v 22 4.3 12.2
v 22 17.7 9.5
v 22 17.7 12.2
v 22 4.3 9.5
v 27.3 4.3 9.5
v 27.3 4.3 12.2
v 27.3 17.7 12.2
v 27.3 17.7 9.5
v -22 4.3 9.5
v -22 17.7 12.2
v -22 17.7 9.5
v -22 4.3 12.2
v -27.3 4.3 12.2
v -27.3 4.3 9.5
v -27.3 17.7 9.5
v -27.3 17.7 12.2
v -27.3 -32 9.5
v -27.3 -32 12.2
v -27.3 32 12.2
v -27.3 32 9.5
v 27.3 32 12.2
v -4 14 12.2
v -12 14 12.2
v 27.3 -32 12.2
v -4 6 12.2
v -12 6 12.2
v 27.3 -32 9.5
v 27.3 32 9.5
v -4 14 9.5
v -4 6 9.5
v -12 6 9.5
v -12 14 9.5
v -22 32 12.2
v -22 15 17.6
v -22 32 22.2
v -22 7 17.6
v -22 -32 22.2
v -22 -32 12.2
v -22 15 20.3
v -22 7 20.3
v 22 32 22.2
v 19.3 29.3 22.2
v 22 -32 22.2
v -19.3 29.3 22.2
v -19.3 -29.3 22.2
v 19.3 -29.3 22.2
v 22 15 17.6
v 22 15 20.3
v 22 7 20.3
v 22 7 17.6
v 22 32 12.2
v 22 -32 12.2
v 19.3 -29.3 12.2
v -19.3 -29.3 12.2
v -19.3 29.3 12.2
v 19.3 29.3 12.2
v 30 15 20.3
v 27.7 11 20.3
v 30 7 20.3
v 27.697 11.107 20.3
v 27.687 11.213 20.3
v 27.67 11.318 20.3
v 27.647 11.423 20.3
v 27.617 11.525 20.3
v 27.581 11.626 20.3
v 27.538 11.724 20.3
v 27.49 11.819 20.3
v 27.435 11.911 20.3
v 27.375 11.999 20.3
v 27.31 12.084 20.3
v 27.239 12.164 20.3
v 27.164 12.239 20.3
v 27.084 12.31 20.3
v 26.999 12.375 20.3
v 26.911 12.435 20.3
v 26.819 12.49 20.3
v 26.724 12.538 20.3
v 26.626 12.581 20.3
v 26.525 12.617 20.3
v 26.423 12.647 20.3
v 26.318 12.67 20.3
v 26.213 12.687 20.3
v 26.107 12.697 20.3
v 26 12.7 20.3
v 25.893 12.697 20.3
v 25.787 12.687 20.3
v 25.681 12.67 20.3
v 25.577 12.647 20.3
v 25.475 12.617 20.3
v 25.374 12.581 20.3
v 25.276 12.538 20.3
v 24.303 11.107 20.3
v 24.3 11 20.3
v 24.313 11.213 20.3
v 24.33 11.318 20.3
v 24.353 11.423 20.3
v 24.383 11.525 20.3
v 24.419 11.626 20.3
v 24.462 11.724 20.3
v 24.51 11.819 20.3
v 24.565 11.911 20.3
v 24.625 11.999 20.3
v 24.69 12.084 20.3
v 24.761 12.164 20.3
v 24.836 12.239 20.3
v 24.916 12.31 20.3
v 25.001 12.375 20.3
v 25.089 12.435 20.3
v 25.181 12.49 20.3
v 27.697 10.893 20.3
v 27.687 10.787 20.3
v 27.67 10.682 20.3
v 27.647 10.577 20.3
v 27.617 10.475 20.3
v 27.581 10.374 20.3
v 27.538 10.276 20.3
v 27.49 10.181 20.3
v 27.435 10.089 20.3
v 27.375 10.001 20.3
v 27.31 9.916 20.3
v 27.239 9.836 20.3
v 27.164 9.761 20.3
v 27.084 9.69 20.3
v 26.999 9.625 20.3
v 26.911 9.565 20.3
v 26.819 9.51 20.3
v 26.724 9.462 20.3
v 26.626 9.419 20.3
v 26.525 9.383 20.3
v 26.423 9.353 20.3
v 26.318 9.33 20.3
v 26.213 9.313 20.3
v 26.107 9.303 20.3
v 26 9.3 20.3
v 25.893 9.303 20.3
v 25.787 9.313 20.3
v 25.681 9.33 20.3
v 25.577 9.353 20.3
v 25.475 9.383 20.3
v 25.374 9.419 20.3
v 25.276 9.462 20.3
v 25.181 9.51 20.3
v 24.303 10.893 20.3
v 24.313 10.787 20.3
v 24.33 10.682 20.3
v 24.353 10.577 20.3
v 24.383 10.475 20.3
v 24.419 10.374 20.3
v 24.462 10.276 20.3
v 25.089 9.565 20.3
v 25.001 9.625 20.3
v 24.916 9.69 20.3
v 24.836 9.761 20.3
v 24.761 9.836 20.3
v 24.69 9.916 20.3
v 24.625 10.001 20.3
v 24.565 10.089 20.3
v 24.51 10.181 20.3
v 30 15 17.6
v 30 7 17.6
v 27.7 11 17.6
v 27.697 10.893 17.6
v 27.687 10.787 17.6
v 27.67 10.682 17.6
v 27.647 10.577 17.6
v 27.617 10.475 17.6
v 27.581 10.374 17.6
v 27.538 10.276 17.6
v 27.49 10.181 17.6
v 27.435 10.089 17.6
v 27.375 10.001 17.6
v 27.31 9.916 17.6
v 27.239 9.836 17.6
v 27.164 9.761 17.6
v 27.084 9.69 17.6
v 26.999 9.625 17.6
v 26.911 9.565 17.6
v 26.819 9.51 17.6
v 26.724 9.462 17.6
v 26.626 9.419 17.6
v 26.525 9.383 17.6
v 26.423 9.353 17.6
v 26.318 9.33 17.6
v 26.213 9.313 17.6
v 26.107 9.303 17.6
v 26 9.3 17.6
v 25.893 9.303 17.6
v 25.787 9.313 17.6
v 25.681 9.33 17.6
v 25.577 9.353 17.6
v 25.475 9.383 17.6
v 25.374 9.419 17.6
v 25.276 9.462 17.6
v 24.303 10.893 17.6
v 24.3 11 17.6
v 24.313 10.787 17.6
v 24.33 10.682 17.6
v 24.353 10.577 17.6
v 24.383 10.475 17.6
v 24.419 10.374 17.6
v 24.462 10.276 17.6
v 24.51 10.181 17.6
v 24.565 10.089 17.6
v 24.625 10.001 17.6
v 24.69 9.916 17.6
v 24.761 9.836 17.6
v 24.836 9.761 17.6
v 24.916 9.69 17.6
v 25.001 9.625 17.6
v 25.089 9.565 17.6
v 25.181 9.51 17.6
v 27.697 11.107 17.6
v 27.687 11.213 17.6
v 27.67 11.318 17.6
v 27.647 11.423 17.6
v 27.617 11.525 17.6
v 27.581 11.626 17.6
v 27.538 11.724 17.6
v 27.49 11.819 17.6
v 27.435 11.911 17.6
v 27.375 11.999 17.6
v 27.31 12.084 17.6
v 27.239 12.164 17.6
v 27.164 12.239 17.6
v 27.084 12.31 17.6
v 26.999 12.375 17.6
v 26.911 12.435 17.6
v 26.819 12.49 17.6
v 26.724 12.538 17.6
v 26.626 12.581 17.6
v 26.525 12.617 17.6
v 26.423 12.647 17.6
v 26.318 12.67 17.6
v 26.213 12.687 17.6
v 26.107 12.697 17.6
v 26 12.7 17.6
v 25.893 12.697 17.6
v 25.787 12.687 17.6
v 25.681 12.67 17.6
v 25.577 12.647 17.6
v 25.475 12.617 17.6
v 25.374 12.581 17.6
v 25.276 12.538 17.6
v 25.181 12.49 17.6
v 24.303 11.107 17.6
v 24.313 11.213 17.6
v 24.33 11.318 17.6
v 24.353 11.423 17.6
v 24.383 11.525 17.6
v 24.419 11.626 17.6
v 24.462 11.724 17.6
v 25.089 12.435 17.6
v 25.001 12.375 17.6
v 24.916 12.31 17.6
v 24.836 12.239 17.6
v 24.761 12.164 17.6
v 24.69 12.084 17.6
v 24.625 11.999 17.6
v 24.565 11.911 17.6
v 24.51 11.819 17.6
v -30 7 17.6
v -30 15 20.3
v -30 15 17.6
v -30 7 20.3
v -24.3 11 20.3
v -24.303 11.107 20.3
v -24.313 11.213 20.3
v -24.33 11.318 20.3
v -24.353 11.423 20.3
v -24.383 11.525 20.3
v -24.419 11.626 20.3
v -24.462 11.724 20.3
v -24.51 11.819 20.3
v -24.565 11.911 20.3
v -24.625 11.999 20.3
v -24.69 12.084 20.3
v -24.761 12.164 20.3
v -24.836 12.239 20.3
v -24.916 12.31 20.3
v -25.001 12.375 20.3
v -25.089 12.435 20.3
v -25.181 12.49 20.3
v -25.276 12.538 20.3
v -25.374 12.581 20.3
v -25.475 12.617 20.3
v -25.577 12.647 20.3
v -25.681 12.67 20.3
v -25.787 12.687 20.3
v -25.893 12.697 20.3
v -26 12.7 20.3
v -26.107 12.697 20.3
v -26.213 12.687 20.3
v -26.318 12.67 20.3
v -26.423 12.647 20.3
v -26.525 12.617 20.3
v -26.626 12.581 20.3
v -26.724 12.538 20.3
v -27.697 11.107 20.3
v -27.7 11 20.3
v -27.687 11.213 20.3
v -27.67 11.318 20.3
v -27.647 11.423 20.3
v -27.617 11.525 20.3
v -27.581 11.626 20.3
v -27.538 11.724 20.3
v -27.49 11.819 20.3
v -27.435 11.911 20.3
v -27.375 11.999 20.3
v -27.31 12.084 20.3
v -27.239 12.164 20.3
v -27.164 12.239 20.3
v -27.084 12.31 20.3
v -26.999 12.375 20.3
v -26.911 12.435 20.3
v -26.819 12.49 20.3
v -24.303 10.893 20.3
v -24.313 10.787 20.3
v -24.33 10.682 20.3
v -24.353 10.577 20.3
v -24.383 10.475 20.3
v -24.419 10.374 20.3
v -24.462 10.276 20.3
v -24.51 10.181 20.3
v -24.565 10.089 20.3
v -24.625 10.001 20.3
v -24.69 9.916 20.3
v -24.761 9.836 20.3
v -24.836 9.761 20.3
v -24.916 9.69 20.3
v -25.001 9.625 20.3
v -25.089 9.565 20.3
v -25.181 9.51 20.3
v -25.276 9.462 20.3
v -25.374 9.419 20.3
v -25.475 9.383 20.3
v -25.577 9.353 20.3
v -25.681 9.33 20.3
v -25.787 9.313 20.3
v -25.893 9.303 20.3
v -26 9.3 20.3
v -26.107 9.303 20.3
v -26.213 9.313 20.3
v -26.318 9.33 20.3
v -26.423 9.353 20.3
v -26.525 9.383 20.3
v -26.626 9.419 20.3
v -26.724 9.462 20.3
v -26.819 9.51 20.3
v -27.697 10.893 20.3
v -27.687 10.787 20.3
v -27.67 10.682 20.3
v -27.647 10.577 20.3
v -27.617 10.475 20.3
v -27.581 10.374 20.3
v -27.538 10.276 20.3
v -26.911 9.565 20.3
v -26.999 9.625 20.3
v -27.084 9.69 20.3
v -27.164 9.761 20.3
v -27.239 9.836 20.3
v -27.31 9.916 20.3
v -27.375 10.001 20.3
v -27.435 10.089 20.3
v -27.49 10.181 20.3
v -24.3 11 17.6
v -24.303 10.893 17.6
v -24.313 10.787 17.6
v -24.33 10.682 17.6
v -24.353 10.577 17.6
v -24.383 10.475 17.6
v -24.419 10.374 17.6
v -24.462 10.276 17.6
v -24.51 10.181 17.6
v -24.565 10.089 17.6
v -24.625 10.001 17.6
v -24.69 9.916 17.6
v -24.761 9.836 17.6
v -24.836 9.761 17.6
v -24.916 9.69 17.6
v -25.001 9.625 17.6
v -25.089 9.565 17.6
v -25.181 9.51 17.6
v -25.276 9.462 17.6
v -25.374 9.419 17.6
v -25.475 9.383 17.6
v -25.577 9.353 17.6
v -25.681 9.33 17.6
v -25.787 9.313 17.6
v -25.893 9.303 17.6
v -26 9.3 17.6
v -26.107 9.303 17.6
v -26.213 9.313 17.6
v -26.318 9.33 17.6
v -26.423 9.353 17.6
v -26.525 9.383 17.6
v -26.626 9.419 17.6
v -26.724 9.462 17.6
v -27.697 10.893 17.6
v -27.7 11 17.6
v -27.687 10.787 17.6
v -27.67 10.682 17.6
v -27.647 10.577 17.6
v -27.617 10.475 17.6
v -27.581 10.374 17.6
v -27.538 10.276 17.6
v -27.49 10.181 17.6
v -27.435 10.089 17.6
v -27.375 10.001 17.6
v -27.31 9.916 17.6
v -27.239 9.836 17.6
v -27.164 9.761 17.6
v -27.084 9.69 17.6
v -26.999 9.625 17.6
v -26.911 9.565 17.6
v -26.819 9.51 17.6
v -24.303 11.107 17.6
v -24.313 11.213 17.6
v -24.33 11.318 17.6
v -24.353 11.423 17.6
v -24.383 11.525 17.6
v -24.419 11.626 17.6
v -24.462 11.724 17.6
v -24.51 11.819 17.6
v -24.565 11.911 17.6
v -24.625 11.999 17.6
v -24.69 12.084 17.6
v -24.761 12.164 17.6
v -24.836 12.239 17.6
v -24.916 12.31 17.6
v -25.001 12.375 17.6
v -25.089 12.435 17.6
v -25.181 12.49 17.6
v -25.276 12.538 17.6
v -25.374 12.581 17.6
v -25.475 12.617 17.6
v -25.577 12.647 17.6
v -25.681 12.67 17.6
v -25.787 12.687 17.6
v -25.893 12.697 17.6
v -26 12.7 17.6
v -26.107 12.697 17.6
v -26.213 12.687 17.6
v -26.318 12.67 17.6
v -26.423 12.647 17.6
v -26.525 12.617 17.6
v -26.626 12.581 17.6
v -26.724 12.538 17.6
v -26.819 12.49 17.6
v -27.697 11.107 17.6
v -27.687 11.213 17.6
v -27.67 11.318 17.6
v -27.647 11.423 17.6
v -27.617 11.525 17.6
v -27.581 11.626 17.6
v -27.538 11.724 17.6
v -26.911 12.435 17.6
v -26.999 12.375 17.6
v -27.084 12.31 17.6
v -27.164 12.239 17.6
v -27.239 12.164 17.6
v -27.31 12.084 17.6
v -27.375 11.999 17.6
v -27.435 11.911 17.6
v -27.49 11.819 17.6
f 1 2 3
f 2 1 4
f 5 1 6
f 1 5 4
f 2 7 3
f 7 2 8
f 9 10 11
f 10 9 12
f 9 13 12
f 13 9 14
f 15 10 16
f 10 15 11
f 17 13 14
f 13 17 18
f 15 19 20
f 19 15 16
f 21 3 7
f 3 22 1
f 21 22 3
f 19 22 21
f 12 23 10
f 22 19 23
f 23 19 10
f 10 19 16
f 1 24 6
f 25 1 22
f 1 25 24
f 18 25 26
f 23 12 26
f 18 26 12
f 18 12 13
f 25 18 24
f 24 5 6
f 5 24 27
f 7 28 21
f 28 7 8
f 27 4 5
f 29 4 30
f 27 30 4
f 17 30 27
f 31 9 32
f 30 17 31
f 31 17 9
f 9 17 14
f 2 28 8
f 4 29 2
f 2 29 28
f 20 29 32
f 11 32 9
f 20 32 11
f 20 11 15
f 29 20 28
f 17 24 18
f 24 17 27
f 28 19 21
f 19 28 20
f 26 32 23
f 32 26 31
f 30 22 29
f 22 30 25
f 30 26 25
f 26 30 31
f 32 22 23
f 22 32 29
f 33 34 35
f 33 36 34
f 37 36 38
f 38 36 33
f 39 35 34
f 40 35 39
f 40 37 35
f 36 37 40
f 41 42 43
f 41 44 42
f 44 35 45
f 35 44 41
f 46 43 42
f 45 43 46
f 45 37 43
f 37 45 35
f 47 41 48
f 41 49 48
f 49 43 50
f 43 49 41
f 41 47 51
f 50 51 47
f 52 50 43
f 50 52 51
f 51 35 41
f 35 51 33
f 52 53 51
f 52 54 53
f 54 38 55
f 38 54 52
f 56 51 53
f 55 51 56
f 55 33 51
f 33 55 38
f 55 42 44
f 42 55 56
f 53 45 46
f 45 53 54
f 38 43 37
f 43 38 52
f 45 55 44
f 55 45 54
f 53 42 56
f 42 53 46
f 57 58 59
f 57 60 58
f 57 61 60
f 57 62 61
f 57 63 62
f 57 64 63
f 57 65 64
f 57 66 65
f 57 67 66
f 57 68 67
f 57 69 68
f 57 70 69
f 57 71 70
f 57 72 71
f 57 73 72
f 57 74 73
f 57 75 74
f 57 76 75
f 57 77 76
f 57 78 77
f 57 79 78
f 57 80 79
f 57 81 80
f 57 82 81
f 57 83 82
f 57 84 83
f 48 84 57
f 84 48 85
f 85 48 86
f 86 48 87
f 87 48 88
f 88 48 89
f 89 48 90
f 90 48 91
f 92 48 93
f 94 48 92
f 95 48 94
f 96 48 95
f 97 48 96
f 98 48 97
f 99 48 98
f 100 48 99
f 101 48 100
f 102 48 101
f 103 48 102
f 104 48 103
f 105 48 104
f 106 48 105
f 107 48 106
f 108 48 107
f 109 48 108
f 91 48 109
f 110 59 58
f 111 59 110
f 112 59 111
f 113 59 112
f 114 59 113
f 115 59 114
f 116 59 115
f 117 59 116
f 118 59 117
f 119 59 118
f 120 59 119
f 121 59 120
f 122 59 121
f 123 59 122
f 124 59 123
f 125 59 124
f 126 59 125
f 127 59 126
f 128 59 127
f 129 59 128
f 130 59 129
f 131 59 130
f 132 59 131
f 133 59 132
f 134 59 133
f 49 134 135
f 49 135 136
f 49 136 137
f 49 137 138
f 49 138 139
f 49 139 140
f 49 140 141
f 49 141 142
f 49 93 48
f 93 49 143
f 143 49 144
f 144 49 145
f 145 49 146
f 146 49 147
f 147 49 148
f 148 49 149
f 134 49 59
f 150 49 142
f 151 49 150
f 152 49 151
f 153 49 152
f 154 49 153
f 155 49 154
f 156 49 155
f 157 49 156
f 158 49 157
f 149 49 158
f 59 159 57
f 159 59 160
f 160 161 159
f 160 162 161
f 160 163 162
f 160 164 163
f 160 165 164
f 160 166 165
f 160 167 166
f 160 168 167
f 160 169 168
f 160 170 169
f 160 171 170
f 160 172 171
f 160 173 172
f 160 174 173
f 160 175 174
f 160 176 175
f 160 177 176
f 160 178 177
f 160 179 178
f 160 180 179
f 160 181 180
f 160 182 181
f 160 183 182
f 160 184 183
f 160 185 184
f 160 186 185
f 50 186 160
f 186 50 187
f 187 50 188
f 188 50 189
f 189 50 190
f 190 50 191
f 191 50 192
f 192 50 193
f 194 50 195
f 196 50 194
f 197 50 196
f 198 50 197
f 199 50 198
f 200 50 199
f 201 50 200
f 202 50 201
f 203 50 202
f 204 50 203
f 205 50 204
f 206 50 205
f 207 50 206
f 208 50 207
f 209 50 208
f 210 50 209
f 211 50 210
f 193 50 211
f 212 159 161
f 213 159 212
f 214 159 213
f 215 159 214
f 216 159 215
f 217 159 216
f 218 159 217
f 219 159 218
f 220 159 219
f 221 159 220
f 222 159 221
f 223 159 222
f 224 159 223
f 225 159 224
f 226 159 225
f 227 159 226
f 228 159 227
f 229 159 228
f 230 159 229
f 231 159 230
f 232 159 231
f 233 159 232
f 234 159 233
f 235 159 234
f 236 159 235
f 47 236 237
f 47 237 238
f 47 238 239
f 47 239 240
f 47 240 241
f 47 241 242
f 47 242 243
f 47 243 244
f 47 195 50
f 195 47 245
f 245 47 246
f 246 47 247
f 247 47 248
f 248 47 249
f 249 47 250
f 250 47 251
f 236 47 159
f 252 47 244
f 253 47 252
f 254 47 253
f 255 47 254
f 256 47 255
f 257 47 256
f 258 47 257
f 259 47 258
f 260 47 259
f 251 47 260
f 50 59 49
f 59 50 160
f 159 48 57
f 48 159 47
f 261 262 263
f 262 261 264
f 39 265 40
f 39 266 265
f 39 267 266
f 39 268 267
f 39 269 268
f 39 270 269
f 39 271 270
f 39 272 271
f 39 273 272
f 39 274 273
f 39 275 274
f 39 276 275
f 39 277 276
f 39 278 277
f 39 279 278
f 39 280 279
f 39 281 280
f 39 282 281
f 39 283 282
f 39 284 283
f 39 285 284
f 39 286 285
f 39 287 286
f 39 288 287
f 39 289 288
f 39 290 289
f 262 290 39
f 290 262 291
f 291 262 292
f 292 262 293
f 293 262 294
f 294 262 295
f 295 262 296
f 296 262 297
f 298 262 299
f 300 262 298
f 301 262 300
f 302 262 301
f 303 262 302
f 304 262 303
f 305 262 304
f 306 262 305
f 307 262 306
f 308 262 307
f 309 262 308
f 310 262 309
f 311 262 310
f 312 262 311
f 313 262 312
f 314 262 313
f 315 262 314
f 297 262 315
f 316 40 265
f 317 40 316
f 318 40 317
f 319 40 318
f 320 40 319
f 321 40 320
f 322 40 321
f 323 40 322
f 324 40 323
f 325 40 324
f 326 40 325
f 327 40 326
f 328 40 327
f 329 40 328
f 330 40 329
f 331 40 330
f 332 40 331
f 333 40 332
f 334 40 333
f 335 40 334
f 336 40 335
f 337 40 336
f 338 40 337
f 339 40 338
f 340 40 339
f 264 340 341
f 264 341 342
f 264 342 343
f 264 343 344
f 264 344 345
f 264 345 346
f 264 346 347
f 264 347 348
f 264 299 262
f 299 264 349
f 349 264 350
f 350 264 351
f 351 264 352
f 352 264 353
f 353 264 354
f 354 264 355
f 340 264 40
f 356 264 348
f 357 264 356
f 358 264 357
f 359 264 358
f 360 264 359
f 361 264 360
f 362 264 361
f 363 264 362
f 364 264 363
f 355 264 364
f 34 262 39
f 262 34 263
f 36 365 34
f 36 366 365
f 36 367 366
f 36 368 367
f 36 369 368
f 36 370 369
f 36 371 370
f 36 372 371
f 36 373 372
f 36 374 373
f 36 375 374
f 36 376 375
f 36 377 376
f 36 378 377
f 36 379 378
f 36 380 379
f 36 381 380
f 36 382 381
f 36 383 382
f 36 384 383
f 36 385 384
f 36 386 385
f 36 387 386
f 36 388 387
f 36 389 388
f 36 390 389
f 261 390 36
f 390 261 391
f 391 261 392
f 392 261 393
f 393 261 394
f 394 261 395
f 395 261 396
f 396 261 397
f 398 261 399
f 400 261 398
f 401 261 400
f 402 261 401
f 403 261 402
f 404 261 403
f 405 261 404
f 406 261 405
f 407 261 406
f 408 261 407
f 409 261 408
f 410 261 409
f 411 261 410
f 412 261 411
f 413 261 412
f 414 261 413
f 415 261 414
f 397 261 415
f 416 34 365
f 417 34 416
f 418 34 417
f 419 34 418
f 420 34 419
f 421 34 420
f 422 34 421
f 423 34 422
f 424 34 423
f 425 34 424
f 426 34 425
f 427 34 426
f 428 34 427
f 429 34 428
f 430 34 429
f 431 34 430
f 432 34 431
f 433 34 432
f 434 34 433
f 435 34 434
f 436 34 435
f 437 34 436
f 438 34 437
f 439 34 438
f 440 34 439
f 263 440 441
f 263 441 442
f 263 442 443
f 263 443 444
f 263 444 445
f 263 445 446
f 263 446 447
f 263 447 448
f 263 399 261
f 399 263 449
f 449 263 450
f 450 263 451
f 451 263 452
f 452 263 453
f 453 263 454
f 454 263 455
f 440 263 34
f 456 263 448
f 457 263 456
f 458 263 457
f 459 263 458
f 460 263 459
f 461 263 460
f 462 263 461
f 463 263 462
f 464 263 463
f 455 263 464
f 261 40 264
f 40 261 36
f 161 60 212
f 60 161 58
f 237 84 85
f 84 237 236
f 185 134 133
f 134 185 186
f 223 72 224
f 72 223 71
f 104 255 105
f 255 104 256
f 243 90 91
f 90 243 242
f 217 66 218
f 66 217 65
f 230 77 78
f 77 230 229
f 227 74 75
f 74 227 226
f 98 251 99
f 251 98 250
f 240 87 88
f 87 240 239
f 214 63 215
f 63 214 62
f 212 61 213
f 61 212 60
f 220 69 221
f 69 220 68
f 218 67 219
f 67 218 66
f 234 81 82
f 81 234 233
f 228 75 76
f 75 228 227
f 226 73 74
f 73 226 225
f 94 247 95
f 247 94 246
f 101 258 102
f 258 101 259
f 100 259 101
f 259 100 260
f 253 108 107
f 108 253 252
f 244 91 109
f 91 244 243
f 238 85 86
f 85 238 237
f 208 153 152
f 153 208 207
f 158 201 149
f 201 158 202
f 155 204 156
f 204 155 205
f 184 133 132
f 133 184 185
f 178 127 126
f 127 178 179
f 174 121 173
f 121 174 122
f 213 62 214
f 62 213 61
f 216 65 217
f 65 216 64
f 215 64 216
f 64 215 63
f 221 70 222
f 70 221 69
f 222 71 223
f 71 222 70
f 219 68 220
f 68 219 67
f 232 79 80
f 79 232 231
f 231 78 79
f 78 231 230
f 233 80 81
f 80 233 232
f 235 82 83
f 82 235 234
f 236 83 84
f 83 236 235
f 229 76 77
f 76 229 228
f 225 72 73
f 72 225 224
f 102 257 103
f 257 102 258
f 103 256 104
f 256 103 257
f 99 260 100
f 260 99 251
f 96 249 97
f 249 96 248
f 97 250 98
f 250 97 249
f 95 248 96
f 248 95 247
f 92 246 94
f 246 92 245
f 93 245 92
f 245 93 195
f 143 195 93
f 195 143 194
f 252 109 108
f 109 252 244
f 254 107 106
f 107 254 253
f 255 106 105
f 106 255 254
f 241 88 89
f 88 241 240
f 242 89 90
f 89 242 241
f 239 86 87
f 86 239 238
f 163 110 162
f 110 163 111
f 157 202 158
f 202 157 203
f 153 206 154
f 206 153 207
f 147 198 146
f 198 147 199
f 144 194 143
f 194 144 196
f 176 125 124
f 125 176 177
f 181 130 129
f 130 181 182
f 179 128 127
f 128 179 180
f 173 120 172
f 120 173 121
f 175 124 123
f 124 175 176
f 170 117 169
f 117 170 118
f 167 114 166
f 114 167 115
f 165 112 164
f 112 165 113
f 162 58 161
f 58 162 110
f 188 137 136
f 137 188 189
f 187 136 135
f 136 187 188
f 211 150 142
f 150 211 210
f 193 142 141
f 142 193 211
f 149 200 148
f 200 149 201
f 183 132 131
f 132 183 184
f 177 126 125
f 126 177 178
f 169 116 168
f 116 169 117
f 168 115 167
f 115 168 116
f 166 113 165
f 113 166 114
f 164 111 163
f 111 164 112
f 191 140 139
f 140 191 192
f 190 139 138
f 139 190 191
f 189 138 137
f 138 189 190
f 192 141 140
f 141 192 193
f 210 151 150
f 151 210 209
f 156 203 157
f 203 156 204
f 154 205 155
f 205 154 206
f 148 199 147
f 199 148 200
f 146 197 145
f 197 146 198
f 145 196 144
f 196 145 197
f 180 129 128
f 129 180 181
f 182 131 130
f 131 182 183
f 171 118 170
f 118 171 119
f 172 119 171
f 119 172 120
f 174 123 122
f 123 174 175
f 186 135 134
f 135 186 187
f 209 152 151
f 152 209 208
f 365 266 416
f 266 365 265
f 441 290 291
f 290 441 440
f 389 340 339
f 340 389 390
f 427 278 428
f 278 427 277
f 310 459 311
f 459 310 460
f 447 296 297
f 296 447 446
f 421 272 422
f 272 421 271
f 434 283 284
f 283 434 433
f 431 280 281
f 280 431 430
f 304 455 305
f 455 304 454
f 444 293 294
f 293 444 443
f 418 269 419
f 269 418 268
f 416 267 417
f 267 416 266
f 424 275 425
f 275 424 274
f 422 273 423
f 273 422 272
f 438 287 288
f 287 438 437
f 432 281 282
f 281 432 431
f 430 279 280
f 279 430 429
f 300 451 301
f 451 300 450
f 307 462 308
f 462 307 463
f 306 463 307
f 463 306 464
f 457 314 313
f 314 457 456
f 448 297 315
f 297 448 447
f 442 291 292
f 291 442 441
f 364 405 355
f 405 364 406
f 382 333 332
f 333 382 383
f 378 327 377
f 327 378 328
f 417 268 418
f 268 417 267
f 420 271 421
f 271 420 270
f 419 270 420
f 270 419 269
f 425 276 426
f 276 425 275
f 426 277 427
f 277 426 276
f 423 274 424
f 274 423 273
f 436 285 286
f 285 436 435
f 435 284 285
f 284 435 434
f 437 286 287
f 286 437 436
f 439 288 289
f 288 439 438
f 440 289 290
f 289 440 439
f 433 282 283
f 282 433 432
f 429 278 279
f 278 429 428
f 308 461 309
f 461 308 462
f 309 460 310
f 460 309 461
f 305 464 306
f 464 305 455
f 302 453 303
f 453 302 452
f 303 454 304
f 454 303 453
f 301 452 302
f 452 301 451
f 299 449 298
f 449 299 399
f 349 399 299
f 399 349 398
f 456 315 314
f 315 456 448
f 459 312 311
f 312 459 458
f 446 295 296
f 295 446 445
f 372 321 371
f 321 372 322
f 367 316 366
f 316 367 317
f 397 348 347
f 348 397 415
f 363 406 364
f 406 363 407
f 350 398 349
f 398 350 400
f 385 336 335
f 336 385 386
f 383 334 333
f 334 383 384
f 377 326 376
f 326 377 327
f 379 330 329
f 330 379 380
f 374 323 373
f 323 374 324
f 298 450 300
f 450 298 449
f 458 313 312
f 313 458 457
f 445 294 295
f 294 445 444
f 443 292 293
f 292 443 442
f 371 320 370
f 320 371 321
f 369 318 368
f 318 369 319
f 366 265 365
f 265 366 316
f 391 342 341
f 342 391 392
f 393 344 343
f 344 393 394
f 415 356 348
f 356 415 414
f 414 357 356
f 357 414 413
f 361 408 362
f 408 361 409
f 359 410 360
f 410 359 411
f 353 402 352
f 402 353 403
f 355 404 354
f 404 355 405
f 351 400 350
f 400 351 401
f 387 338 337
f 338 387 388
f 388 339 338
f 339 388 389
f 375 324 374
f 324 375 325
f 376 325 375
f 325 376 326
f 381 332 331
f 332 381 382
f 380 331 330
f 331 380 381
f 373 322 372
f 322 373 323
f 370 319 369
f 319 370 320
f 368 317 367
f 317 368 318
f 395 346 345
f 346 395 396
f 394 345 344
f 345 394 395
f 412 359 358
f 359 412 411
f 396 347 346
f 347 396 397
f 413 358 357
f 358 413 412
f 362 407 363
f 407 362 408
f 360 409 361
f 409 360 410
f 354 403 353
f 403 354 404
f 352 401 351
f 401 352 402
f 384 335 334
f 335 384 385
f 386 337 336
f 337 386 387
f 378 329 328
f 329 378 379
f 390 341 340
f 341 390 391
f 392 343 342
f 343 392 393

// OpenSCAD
// file: ../chassis.scad
/*
Title:          chassis.scad
Description:    R2B2 nano Chassis
Authors:        Pau Roura (@proura)
Date:           20180621
Version:        0.3
Notes:

    Default values for module chassis

    module chassis(
        d_screw_h=3,        //screw hole diameter
        w_walls=2.7,        //wall with
        w_support=8,        //support with
        h_support=8,        //support depth
        w_chassis=56,       //chassis with
        d_chassis=71,       //chassis depth
        h_battery=9.5
    )
*/
include <config.scad>;

module supportR(w_walls=2.7, w_support=8, h_support=8, w_chassis=56, h_battery=9.5){
    union(){
        translate([w_chassis/2-w_support,15-h_support-1,0])        cube([w_support,h_support+2,h_battery+w_walls]);
        translate([w_chassis/2-w_support,15-h_support-w_walls,0])  cube([w_support-2,w_walls,h_battery+w_walls*3]);
        translate([w_chassis/2-w_support,15,0])                    cube([w_support-2,w_walls,h_battery+w_walls*3]);
    }
}

module supportL(w_walls=2.7, w_support=8, h_support=8, w_chassis=56, h_battery=9.5){
    union(){
        translate([-w_chassis/2,15-h_support-1,0])          cube([w_support,h_support+2,h_battery+w_walls]);
        translate([-w_chassis/2+2,15-h_support-w_walls,0])  cube([w_support-2,w_walls,h_battery+w_walls*3]);
        translate([-w_chassis/2+2,15,0])                    cube([w_support-2,w_walls,h_battery+w_walls*3]);
    }
}

module supportB(w_walls=2.7, w_support=8, h_support=8, d_chassis=71){
    translate([w_walls,d_chassis/2-w_support,0])     cube([w_walls,w_support,h_support]);
    translate([-w_walls*2,d_chassis/2-w_support,0])  cube([w_walls,w_support,h_support]);
}

module supportF(w_walls=2.7, w_support=8, h_support=8, d_chassis=71){
    translate([w_walls,-d_chassis/2,0])              cube([w_walls,w_support,h_support]);
    translate([-w_walls*2,-d_chassis/2,0])           cube([w_walls,w_support,h_support]);

}

module chassis(d_screw_h=3, w_walls=2.7, w_support=8, h_support=8, w_chassis=56, d_chassis=71, h_battery=9.5){
    difference() {
        union(){
            translate([0,0,-w_walls/2]) cube([w_chassis,d_chassis,w_walls], center=true);

            //Thrusters supports
            supportR(w_walls, w_support, h_support, w_chassis, h_battery);
            supportL(w_walls, w_support, h_support, w_chassis, h_battery);
            supportB(w_walls, w_support, h_support, d_chassis);
            supportF(w_walls, w_support, h_support, d_chassis);

            //battery and power compartments
            translate([-w_chassis/2,-d_chassis/2+w_support,0])          cube ([w_chassis,w_walls,h_battery]);
            translate([-w_chassis/2,15-h_support-w_walls*2,0])          cube ([w_chassis,w_walls,h_battery]);
            translate([-w_chassis/2,d_chassis/2-w_support-w_walls,0])   cube ([w_chassis,w_walls,h_battery]);
            translate([-w_chassis/2,-d_chassis/2+w_support,0])          cube ([w_walls,d_chassis/2+7-h_support,h_battery]);
            translate([w_chassis/2-w_walls,-d_chassis/2+w_support,0])   cube ([w_walls,d_chassis/2+7-h_support,h_battery]);
            translate([-w_chassis/2,15,0])                              cube ([w_walls,d_chassis/2-15-w_support-w_walls,h_battery]);
            translate([w_chassis/2-w_walls,15,0])                       cube ([w_walls,d_chassis/2-15-w_support-w_walls,h_battery]);
        }

        //Screw holes
        translate([w_chassis/2-w_support/2,15-h_support/2,-w_walls-1])                      cylinder(h_battery+w_walls*3,d=d_screw_h);
        translate([-w_chassis/2+w_support/2,15-h_support/2,-w_walls-1])                     cylinder(h_battery+w_walls*3,d=d_screw_h);
        translate([-w_walls*3,d_chassis/2-w_support/2,h_support/2])     rotate([0,90,0])    cylinder(w_walls*6,d=d_screw_h);
        translate([-w_walls*3,-d_chassis/2+w_support/2,h_support/2])    rotate([0,90,0])    cylinder(w_walls*6,d=d_screw_h);

        //Cable holes
        translate([-w_chassis/2+w_support,15-h_support-w_walls*2-1,0])  cube ([w_walls,w_walls+2,h_battery+1]);
        translate([w_chassis/2-w_support-w_walls*2,13,-w_walls-1])      cube ([w_walls,w_walls+2,w_walls+2]);
    }
}

module chassis_b(d_screw_h=3, w_walls=2.7, w_support=8, h_support=8, w_chassis=56, d_chassis=71, h_battery=9.5, h_control=10){
    difference() {
        union() {
            
            //Electronic Chassis Base
            translate([0,0,h_battery+w_walls/2])
            difference(){
                cube ([w_chassis-w_walls*2,d_chassis-w_support*2,w_walls], center=true);
                translate([0,0,-h_battery]) supportR(w_walls, w_support, h_support, w_chassis, h_battery);
                translate([0,0,-h_battery]) supportL(w_walls, w_support, h_support, w_chassis, h_battery);
                translate([-8,10,0]) cube ([8,8,w_walls+2], center=true);
            }

            //Electronic compartment
            translate([-w_chassis/2+w_support,d_chassis/2-w_support-w_walls,h_battery+w_walls]) cube ([w_chassis-w_support*2,w_walls,h_control]);
            translate([-w_chassis/2+w_support,-d_chassis/2+w_support,h_battery+w_walls])        cube ([w_chassis-w_support*2,w_walls,h_control]);
            translate([-w_chassis/2+w_support,-d_chassis/2+w_support,h_battery+w_walls])        cube ([w_walls,d_chassis-w_support*2,h_control]);
            translate([w_chassis/2-w_support-w_walls,-d_chassis/2+w_support,h_battery+w_walls]) cube ([w_walls,d_chassis-w_support*2,h_control]);

            //Supports
            translate([w_chassis/2-w_support,15-h_support,h_battery+w_walls*3]) cube ([w_support,h_support,w_walls]);
            translate([-w_chassis/2,15-h_support,h_battery+w_walls*3])          cube ([w_support,h_support,w_walls]);
        }
        
        translate([w_chassis/2-w_support/2,15-h_support/2,h_battery])   cylinder(h_control+h_battery,d=d_screw_h);
        translate([-w_chassis/2+w_support/2,15-h_support/2,h_battery])  cylinder(h_control+h_battery,d=d_screw_h);
    }
}

//$fn=100;
translate([0,0,-5]) chassis(d_screw_h, w_walls, w_support, h_support, w_chassis, d_chassis, h_battery);
translate([0,0,10]) chassis_b(d_screw_h, w_walls, w_support, h_support, w_chassis, d_chassis, h_battery, h_control);
// file: ../config.scad
//General Config
$fn = 100;
w_walls=2.7;                //width of the walls
d_screw_h=3;                //screw thread hole
d_screw_p=d_screw_h+0.4;    //screw pass trhougth
h_support=8;                //screw support height
w_support=8;                //screw support width
w_chassis=60;               //chassis with
d_chassis=80;               //chassis depth
h_battery=9.5;              //hight battery
h_control=10;               //hight electronics

//motor
d_motor=7.6;        //motor diameter
d_motor_shaft=1;    //motor shaft diameter
d_motor_grub=2;     //motor grub
h_motor=16.60;      //motor height

//motor_housing
w_walls_m=1;                           //with of the walls
gap_housing=3;                         //extra height of the encapsulation
h_motor_body=h_motor+(gap_housing*2);  //motor housing height

//Thrusters
d_motor_t=d_motor+(w_walls_m*2);    //motor support diameter
h_motor_sup=8;                      //motor support height
o_motor=0;                          //motor support distance from ground
d_thruster=34;                      //thruster diameter
h_thruster=30;                      //thruster height

//module propeller
h_propeller=10;     //propeller height
o_propeller=1;      //offset of the blades to shaft
n_blade=3;          //number of blades
s_blade=20;         //angle separation between blades
w_blade=4;          //with of the blades
rounded="empty";      //shape of the blades [round | trian | empty]
// main file
/*
Title:          chassis.scad for generate STL file
Description:    R2B2 nano Chassis
Authors:        Pau Roura (@proura)
Date:           20180621
Version:        0.1
Notes:

    Default values for module chassis

    module chassis(
        d_screw_h=3,        //screw hole diameter
        w_walls=2.7,        //wall with
        w_support=8,        //support with
        h_support=8,        //support depth
        w_chassis=56,       //chassis with
        d_chassis=71,       //chassis depth
        h_battery=9.5,
        h_control=10
    )
*/

include<../config.scad>;
use <../chassis.scad>;
$fn = 100;
chassis_b(d_screw_p, w_walls, w_support, h_support, w_chassis, d_chassis, h_battery, h_control);
